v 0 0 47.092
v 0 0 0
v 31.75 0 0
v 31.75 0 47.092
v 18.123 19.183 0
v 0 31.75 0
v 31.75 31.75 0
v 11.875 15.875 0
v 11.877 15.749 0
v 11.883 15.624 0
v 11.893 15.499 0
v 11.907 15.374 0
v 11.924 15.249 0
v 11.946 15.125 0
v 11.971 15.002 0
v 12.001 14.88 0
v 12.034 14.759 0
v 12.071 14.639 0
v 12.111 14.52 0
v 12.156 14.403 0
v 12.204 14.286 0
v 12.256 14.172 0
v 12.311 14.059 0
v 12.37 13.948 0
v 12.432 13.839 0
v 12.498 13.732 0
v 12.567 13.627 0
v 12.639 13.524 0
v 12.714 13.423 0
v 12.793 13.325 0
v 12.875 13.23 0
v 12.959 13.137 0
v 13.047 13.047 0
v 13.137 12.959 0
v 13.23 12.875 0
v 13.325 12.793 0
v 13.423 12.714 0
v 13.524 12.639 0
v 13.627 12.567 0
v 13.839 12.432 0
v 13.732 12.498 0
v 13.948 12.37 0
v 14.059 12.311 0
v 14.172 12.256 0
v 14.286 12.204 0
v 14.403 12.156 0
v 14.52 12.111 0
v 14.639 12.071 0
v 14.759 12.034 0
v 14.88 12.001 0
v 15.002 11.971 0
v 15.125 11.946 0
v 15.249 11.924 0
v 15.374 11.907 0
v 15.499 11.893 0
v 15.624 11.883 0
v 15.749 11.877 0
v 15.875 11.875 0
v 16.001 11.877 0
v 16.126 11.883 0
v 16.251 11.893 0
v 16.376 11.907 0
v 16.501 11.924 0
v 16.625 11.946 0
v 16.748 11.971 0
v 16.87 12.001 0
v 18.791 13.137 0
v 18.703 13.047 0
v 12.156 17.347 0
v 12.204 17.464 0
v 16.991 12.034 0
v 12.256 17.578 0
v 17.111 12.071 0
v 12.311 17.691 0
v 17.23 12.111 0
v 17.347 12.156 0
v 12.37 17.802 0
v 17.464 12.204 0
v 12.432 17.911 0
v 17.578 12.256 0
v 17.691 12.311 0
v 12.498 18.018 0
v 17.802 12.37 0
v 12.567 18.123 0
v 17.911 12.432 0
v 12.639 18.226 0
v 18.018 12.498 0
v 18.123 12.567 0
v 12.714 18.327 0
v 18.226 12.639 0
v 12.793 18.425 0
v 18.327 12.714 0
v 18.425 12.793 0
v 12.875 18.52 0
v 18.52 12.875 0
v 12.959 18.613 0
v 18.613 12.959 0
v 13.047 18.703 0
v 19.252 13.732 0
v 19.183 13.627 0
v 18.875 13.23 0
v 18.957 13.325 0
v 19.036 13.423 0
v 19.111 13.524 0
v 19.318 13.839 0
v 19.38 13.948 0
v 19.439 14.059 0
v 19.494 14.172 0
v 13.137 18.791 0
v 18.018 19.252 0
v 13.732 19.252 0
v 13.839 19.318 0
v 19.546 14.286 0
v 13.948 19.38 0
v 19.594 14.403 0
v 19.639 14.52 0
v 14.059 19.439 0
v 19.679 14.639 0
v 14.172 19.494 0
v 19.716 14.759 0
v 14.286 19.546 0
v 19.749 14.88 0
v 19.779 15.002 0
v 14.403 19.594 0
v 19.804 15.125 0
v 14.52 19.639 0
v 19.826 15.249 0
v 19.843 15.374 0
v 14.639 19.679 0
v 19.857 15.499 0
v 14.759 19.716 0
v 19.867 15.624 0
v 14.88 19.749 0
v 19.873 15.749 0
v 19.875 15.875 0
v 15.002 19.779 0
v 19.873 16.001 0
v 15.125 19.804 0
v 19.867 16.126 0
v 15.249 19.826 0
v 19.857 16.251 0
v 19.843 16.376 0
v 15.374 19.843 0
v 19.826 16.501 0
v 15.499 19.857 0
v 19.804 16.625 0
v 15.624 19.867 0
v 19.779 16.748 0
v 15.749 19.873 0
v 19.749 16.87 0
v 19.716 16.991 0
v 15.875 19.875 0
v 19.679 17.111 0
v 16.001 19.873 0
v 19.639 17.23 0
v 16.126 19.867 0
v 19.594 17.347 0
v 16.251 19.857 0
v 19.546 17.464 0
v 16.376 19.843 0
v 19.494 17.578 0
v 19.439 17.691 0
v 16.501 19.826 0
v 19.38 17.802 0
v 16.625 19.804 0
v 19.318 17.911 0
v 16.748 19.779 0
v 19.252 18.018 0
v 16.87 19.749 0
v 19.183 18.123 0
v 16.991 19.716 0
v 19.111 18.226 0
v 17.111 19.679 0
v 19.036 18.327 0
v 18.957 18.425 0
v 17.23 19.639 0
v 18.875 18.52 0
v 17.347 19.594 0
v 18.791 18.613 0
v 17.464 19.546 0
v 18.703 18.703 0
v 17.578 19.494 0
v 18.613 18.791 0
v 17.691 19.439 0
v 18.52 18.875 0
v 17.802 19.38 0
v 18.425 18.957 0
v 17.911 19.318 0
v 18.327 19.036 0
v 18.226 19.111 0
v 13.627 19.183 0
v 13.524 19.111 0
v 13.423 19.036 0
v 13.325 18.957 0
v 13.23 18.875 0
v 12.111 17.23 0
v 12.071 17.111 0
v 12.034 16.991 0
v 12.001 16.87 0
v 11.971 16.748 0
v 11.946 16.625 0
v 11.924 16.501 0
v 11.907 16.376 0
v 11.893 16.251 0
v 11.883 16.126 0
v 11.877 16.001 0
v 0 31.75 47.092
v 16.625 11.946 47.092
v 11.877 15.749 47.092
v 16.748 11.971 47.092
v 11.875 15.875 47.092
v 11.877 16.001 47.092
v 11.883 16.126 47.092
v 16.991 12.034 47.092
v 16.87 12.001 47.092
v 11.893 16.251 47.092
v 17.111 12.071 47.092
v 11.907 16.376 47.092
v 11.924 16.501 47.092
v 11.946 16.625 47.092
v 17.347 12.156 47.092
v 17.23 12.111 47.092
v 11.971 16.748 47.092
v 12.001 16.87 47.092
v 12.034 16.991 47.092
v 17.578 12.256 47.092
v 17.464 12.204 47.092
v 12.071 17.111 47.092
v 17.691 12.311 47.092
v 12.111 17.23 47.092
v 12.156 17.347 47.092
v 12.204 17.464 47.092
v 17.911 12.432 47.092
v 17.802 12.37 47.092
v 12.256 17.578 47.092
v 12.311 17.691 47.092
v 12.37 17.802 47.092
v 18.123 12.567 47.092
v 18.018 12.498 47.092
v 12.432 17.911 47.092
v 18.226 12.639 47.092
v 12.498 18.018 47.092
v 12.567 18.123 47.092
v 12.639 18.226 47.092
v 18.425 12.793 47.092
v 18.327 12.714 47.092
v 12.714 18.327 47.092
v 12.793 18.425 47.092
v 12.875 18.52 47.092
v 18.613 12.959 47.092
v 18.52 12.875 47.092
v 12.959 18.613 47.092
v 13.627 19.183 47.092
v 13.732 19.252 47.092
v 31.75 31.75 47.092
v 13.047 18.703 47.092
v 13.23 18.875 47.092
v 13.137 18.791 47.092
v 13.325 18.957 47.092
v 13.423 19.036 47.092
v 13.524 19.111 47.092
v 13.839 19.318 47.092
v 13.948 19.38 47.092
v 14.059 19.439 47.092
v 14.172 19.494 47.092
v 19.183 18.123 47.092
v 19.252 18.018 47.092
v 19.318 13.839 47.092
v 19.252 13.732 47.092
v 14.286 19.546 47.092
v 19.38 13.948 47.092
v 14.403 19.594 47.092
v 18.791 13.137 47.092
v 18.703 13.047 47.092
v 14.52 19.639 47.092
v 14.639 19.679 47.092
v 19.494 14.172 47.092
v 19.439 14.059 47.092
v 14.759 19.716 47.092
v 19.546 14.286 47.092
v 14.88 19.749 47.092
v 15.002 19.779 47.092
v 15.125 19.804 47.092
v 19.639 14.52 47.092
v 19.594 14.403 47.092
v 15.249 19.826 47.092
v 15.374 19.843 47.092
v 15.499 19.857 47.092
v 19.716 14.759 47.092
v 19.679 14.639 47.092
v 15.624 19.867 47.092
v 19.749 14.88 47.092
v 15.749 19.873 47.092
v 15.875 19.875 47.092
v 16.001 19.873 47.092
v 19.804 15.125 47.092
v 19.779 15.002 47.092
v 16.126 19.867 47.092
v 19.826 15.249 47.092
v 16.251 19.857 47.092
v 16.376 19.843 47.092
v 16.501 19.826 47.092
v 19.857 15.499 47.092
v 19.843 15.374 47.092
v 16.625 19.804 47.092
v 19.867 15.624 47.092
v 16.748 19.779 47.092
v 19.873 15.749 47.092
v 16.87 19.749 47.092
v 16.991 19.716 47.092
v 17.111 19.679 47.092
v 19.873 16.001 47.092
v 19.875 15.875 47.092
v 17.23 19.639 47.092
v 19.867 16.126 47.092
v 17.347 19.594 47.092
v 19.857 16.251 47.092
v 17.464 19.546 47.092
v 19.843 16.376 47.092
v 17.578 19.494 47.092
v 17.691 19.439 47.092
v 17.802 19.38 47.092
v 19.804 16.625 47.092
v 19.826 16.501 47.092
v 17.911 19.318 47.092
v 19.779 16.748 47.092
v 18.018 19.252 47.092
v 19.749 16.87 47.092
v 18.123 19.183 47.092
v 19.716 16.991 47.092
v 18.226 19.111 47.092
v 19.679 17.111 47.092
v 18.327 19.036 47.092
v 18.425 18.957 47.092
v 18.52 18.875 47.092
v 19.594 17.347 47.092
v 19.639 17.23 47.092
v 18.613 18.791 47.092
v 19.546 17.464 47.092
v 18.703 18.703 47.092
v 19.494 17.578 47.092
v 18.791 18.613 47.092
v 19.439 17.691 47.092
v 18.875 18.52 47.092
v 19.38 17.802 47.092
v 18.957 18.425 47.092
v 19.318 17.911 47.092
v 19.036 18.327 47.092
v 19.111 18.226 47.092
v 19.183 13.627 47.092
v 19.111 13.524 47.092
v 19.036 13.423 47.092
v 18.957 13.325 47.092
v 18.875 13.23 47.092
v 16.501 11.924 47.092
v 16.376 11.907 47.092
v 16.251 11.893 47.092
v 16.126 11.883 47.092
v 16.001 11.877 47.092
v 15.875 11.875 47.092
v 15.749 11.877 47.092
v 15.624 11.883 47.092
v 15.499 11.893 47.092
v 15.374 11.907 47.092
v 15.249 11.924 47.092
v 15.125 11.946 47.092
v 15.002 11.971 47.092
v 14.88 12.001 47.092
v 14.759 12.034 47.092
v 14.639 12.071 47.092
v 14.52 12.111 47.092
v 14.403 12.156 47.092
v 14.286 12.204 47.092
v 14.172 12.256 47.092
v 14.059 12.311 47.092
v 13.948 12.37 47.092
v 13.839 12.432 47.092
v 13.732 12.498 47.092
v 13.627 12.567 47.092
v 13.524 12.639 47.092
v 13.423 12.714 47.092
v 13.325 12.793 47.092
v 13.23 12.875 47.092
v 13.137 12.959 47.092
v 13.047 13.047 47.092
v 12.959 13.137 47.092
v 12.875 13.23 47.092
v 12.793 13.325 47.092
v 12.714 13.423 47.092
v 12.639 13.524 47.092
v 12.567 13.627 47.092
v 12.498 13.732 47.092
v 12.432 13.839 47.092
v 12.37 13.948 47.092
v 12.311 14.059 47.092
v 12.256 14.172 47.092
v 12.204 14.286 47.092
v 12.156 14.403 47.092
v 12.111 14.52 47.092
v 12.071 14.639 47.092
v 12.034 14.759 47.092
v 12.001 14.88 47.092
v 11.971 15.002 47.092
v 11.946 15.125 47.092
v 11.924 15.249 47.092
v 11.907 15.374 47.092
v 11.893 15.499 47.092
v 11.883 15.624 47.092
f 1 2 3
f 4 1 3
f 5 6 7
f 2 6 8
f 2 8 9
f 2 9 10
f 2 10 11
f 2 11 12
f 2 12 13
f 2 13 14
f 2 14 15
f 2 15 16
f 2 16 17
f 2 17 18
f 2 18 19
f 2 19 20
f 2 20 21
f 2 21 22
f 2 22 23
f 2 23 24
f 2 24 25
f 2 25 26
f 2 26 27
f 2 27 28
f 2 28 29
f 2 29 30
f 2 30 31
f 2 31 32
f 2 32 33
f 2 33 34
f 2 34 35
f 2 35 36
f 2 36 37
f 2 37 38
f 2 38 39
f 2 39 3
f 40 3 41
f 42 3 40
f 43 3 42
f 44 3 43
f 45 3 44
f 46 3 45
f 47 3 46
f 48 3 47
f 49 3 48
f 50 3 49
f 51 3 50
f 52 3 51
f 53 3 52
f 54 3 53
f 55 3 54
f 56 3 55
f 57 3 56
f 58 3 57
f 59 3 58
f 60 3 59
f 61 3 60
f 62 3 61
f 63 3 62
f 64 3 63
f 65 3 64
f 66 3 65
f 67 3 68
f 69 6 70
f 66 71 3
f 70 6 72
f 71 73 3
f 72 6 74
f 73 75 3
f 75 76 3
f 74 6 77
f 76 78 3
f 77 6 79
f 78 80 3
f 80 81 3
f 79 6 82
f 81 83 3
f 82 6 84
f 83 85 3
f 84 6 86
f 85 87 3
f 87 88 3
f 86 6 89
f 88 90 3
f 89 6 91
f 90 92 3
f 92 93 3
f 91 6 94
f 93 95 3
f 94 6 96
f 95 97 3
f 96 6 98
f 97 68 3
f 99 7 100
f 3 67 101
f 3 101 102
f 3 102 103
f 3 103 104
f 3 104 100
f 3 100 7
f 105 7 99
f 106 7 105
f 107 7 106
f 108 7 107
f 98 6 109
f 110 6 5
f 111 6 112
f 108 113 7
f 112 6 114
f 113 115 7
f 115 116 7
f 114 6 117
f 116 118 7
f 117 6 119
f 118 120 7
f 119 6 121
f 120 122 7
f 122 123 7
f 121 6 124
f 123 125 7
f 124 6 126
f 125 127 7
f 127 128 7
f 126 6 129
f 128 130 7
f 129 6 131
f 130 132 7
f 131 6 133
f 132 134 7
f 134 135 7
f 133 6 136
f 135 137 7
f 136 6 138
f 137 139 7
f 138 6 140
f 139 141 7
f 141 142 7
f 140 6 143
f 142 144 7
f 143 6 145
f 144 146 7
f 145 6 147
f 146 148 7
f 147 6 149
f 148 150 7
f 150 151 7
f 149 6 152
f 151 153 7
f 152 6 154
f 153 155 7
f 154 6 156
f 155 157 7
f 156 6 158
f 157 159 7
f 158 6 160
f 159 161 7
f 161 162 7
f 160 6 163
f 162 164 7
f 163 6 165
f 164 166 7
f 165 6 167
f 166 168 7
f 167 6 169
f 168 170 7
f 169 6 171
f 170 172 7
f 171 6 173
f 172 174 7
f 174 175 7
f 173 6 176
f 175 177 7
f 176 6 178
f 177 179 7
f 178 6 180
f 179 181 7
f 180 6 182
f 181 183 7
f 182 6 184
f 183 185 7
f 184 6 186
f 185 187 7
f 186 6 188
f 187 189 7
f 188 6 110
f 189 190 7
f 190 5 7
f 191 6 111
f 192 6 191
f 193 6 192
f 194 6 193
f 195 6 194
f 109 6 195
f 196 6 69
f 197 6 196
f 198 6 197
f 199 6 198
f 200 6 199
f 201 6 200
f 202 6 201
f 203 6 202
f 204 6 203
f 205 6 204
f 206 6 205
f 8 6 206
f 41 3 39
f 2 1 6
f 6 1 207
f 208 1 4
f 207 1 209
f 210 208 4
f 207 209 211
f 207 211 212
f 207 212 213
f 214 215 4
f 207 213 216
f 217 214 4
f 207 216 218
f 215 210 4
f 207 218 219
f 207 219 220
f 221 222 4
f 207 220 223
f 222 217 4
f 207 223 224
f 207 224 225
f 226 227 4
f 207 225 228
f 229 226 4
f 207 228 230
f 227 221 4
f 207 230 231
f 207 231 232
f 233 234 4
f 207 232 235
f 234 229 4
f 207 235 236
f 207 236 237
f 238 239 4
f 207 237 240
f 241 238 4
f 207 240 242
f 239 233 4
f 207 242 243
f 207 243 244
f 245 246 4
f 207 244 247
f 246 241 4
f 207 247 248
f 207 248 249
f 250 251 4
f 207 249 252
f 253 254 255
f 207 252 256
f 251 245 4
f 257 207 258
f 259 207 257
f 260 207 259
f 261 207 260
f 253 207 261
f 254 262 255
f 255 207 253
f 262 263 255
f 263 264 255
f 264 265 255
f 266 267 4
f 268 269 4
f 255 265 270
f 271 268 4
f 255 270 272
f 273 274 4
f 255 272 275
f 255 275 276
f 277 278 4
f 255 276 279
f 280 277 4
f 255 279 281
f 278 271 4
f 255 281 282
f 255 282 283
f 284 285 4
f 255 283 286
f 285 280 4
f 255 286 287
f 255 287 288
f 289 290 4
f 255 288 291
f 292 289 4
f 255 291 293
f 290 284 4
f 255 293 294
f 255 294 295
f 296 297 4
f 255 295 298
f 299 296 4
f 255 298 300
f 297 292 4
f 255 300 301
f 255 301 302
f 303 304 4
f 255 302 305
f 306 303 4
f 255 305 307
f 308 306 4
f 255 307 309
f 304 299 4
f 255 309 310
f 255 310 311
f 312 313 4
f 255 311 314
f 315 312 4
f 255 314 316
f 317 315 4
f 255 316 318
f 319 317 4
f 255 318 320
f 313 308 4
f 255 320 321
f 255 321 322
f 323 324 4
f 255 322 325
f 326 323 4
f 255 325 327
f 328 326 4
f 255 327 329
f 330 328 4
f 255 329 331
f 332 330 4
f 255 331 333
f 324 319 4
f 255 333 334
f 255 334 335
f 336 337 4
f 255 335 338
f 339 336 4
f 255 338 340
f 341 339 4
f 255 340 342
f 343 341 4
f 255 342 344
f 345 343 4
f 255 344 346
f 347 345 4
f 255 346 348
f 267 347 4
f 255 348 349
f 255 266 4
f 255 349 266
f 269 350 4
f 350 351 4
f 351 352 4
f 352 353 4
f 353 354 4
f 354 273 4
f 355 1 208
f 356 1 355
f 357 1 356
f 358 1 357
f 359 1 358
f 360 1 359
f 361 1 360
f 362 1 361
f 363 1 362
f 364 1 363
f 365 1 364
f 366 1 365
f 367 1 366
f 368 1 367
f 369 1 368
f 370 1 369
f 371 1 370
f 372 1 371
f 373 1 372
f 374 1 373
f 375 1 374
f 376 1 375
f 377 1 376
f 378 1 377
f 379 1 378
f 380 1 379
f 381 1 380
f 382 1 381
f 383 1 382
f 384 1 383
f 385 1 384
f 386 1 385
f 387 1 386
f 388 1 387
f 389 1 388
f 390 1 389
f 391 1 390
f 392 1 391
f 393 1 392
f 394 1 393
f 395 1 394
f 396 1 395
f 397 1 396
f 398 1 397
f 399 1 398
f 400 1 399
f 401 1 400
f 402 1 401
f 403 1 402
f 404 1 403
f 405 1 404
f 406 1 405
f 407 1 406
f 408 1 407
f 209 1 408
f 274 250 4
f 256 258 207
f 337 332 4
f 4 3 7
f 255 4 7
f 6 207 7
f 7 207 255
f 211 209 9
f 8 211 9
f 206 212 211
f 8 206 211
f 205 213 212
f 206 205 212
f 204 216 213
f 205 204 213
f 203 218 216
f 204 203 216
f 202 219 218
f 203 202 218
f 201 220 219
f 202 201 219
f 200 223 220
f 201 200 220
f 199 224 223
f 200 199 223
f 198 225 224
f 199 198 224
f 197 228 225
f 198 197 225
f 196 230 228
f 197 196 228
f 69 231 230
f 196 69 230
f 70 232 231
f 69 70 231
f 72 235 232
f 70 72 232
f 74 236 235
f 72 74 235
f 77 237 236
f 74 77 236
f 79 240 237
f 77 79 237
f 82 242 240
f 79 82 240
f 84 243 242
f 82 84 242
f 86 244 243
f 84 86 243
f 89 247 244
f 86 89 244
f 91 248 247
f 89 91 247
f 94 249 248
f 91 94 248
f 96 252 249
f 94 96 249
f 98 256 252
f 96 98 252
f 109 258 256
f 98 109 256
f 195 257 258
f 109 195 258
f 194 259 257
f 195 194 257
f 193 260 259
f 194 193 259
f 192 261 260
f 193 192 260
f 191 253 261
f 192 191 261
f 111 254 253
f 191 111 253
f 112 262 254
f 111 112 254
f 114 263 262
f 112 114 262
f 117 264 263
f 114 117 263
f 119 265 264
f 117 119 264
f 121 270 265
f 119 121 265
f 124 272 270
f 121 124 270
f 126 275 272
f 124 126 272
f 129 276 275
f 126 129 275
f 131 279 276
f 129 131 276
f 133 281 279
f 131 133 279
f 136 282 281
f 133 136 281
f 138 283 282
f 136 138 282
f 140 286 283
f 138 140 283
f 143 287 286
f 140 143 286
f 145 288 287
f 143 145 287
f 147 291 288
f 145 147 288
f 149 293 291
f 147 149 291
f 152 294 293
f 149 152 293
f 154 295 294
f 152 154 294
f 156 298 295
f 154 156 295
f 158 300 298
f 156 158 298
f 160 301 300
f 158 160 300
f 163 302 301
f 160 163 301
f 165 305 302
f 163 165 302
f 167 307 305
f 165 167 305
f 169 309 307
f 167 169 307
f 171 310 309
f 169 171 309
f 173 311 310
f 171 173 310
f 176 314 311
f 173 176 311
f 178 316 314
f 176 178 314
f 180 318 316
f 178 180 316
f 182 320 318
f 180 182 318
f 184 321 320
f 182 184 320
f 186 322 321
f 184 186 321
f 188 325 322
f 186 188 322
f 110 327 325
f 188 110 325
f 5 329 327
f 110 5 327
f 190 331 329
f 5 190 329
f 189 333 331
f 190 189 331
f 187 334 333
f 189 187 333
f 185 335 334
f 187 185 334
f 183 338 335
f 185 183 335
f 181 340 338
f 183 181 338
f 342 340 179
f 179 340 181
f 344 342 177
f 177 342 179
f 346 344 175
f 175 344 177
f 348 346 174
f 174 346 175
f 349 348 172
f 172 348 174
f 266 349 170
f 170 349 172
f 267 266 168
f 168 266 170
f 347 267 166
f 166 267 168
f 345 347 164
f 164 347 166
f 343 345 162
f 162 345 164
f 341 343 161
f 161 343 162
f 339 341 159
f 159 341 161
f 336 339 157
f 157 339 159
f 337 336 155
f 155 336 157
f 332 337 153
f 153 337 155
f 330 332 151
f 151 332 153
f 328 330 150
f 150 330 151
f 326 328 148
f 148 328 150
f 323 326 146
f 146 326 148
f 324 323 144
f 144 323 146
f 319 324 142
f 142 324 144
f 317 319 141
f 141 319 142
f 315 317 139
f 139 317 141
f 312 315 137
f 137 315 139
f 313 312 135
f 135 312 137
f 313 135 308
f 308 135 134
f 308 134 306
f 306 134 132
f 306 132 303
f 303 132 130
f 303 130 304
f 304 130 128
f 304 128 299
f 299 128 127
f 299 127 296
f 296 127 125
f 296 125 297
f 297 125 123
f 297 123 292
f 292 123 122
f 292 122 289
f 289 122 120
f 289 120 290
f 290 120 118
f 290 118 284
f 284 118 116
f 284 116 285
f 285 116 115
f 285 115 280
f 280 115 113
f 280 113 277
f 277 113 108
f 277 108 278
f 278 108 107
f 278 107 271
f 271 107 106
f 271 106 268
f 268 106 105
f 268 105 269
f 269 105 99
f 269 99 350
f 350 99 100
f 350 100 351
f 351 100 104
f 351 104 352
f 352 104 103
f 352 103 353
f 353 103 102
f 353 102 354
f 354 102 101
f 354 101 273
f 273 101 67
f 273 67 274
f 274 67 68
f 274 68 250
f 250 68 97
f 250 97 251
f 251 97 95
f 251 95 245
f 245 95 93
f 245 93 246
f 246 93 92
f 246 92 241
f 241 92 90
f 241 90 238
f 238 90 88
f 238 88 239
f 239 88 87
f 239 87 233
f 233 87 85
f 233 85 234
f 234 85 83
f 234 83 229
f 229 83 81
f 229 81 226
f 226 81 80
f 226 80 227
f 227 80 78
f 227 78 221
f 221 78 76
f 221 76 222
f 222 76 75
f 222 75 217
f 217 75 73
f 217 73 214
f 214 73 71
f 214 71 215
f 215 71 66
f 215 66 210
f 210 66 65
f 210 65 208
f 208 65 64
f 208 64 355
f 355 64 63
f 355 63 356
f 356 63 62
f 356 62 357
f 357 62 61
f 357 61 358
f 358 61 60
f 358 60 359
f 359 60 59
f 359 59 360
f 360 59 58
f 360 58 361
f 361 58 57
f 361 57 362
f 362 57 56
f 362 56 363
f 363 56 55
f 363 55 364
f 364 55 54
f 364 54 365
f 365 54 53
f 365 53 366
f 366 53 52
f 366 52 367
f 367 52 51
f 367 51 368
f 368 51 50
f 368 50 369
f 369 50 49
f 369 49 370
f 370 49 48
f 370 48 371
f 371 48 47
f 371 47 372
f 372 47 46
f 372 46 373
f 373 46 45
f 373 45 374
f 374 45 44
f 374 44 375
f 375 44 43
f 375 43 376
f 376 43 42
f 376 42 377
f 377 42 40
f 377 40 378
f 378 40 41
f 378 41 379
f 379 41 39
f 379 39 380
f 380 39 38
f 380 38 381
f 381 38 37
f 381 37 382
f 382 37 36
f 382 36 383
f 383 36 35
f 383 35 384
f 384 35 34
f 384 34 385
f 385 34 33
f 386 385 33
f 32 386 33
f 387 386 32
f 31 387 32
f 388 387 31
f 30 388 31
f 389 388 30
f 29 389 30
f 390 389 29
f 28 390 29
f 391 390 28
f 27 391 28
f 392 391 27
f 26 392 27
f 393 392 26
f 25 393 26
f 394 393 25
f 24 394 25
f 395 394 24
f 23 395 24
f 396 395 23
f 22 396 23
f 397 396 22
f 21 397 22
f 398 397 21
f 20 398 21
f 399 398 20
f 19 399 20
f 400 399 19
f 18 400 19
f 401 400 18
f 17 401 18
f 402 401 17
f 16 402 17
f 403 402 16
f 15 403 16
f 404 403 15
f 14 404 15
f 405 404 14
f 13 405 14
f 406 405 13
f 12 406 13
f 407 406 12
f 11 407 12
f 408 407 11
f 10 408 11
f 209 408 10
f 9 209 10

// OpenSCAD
width = 25.4 * 1.25;
depth = 25.4 * 1.25;
height = 1.854 * 25.4;
bolt = 8;

#difference()
{
linear_extrude(height = height )
{
	polygon(points=[[0, 0],[width, 0],[width, depth], [0, depth]]);

}

linear_extrude(height = height)
{
	translate([width/2, depth/2,0])
	{
		circle($fn = 200, r = bolt/2);
	}
}
}
